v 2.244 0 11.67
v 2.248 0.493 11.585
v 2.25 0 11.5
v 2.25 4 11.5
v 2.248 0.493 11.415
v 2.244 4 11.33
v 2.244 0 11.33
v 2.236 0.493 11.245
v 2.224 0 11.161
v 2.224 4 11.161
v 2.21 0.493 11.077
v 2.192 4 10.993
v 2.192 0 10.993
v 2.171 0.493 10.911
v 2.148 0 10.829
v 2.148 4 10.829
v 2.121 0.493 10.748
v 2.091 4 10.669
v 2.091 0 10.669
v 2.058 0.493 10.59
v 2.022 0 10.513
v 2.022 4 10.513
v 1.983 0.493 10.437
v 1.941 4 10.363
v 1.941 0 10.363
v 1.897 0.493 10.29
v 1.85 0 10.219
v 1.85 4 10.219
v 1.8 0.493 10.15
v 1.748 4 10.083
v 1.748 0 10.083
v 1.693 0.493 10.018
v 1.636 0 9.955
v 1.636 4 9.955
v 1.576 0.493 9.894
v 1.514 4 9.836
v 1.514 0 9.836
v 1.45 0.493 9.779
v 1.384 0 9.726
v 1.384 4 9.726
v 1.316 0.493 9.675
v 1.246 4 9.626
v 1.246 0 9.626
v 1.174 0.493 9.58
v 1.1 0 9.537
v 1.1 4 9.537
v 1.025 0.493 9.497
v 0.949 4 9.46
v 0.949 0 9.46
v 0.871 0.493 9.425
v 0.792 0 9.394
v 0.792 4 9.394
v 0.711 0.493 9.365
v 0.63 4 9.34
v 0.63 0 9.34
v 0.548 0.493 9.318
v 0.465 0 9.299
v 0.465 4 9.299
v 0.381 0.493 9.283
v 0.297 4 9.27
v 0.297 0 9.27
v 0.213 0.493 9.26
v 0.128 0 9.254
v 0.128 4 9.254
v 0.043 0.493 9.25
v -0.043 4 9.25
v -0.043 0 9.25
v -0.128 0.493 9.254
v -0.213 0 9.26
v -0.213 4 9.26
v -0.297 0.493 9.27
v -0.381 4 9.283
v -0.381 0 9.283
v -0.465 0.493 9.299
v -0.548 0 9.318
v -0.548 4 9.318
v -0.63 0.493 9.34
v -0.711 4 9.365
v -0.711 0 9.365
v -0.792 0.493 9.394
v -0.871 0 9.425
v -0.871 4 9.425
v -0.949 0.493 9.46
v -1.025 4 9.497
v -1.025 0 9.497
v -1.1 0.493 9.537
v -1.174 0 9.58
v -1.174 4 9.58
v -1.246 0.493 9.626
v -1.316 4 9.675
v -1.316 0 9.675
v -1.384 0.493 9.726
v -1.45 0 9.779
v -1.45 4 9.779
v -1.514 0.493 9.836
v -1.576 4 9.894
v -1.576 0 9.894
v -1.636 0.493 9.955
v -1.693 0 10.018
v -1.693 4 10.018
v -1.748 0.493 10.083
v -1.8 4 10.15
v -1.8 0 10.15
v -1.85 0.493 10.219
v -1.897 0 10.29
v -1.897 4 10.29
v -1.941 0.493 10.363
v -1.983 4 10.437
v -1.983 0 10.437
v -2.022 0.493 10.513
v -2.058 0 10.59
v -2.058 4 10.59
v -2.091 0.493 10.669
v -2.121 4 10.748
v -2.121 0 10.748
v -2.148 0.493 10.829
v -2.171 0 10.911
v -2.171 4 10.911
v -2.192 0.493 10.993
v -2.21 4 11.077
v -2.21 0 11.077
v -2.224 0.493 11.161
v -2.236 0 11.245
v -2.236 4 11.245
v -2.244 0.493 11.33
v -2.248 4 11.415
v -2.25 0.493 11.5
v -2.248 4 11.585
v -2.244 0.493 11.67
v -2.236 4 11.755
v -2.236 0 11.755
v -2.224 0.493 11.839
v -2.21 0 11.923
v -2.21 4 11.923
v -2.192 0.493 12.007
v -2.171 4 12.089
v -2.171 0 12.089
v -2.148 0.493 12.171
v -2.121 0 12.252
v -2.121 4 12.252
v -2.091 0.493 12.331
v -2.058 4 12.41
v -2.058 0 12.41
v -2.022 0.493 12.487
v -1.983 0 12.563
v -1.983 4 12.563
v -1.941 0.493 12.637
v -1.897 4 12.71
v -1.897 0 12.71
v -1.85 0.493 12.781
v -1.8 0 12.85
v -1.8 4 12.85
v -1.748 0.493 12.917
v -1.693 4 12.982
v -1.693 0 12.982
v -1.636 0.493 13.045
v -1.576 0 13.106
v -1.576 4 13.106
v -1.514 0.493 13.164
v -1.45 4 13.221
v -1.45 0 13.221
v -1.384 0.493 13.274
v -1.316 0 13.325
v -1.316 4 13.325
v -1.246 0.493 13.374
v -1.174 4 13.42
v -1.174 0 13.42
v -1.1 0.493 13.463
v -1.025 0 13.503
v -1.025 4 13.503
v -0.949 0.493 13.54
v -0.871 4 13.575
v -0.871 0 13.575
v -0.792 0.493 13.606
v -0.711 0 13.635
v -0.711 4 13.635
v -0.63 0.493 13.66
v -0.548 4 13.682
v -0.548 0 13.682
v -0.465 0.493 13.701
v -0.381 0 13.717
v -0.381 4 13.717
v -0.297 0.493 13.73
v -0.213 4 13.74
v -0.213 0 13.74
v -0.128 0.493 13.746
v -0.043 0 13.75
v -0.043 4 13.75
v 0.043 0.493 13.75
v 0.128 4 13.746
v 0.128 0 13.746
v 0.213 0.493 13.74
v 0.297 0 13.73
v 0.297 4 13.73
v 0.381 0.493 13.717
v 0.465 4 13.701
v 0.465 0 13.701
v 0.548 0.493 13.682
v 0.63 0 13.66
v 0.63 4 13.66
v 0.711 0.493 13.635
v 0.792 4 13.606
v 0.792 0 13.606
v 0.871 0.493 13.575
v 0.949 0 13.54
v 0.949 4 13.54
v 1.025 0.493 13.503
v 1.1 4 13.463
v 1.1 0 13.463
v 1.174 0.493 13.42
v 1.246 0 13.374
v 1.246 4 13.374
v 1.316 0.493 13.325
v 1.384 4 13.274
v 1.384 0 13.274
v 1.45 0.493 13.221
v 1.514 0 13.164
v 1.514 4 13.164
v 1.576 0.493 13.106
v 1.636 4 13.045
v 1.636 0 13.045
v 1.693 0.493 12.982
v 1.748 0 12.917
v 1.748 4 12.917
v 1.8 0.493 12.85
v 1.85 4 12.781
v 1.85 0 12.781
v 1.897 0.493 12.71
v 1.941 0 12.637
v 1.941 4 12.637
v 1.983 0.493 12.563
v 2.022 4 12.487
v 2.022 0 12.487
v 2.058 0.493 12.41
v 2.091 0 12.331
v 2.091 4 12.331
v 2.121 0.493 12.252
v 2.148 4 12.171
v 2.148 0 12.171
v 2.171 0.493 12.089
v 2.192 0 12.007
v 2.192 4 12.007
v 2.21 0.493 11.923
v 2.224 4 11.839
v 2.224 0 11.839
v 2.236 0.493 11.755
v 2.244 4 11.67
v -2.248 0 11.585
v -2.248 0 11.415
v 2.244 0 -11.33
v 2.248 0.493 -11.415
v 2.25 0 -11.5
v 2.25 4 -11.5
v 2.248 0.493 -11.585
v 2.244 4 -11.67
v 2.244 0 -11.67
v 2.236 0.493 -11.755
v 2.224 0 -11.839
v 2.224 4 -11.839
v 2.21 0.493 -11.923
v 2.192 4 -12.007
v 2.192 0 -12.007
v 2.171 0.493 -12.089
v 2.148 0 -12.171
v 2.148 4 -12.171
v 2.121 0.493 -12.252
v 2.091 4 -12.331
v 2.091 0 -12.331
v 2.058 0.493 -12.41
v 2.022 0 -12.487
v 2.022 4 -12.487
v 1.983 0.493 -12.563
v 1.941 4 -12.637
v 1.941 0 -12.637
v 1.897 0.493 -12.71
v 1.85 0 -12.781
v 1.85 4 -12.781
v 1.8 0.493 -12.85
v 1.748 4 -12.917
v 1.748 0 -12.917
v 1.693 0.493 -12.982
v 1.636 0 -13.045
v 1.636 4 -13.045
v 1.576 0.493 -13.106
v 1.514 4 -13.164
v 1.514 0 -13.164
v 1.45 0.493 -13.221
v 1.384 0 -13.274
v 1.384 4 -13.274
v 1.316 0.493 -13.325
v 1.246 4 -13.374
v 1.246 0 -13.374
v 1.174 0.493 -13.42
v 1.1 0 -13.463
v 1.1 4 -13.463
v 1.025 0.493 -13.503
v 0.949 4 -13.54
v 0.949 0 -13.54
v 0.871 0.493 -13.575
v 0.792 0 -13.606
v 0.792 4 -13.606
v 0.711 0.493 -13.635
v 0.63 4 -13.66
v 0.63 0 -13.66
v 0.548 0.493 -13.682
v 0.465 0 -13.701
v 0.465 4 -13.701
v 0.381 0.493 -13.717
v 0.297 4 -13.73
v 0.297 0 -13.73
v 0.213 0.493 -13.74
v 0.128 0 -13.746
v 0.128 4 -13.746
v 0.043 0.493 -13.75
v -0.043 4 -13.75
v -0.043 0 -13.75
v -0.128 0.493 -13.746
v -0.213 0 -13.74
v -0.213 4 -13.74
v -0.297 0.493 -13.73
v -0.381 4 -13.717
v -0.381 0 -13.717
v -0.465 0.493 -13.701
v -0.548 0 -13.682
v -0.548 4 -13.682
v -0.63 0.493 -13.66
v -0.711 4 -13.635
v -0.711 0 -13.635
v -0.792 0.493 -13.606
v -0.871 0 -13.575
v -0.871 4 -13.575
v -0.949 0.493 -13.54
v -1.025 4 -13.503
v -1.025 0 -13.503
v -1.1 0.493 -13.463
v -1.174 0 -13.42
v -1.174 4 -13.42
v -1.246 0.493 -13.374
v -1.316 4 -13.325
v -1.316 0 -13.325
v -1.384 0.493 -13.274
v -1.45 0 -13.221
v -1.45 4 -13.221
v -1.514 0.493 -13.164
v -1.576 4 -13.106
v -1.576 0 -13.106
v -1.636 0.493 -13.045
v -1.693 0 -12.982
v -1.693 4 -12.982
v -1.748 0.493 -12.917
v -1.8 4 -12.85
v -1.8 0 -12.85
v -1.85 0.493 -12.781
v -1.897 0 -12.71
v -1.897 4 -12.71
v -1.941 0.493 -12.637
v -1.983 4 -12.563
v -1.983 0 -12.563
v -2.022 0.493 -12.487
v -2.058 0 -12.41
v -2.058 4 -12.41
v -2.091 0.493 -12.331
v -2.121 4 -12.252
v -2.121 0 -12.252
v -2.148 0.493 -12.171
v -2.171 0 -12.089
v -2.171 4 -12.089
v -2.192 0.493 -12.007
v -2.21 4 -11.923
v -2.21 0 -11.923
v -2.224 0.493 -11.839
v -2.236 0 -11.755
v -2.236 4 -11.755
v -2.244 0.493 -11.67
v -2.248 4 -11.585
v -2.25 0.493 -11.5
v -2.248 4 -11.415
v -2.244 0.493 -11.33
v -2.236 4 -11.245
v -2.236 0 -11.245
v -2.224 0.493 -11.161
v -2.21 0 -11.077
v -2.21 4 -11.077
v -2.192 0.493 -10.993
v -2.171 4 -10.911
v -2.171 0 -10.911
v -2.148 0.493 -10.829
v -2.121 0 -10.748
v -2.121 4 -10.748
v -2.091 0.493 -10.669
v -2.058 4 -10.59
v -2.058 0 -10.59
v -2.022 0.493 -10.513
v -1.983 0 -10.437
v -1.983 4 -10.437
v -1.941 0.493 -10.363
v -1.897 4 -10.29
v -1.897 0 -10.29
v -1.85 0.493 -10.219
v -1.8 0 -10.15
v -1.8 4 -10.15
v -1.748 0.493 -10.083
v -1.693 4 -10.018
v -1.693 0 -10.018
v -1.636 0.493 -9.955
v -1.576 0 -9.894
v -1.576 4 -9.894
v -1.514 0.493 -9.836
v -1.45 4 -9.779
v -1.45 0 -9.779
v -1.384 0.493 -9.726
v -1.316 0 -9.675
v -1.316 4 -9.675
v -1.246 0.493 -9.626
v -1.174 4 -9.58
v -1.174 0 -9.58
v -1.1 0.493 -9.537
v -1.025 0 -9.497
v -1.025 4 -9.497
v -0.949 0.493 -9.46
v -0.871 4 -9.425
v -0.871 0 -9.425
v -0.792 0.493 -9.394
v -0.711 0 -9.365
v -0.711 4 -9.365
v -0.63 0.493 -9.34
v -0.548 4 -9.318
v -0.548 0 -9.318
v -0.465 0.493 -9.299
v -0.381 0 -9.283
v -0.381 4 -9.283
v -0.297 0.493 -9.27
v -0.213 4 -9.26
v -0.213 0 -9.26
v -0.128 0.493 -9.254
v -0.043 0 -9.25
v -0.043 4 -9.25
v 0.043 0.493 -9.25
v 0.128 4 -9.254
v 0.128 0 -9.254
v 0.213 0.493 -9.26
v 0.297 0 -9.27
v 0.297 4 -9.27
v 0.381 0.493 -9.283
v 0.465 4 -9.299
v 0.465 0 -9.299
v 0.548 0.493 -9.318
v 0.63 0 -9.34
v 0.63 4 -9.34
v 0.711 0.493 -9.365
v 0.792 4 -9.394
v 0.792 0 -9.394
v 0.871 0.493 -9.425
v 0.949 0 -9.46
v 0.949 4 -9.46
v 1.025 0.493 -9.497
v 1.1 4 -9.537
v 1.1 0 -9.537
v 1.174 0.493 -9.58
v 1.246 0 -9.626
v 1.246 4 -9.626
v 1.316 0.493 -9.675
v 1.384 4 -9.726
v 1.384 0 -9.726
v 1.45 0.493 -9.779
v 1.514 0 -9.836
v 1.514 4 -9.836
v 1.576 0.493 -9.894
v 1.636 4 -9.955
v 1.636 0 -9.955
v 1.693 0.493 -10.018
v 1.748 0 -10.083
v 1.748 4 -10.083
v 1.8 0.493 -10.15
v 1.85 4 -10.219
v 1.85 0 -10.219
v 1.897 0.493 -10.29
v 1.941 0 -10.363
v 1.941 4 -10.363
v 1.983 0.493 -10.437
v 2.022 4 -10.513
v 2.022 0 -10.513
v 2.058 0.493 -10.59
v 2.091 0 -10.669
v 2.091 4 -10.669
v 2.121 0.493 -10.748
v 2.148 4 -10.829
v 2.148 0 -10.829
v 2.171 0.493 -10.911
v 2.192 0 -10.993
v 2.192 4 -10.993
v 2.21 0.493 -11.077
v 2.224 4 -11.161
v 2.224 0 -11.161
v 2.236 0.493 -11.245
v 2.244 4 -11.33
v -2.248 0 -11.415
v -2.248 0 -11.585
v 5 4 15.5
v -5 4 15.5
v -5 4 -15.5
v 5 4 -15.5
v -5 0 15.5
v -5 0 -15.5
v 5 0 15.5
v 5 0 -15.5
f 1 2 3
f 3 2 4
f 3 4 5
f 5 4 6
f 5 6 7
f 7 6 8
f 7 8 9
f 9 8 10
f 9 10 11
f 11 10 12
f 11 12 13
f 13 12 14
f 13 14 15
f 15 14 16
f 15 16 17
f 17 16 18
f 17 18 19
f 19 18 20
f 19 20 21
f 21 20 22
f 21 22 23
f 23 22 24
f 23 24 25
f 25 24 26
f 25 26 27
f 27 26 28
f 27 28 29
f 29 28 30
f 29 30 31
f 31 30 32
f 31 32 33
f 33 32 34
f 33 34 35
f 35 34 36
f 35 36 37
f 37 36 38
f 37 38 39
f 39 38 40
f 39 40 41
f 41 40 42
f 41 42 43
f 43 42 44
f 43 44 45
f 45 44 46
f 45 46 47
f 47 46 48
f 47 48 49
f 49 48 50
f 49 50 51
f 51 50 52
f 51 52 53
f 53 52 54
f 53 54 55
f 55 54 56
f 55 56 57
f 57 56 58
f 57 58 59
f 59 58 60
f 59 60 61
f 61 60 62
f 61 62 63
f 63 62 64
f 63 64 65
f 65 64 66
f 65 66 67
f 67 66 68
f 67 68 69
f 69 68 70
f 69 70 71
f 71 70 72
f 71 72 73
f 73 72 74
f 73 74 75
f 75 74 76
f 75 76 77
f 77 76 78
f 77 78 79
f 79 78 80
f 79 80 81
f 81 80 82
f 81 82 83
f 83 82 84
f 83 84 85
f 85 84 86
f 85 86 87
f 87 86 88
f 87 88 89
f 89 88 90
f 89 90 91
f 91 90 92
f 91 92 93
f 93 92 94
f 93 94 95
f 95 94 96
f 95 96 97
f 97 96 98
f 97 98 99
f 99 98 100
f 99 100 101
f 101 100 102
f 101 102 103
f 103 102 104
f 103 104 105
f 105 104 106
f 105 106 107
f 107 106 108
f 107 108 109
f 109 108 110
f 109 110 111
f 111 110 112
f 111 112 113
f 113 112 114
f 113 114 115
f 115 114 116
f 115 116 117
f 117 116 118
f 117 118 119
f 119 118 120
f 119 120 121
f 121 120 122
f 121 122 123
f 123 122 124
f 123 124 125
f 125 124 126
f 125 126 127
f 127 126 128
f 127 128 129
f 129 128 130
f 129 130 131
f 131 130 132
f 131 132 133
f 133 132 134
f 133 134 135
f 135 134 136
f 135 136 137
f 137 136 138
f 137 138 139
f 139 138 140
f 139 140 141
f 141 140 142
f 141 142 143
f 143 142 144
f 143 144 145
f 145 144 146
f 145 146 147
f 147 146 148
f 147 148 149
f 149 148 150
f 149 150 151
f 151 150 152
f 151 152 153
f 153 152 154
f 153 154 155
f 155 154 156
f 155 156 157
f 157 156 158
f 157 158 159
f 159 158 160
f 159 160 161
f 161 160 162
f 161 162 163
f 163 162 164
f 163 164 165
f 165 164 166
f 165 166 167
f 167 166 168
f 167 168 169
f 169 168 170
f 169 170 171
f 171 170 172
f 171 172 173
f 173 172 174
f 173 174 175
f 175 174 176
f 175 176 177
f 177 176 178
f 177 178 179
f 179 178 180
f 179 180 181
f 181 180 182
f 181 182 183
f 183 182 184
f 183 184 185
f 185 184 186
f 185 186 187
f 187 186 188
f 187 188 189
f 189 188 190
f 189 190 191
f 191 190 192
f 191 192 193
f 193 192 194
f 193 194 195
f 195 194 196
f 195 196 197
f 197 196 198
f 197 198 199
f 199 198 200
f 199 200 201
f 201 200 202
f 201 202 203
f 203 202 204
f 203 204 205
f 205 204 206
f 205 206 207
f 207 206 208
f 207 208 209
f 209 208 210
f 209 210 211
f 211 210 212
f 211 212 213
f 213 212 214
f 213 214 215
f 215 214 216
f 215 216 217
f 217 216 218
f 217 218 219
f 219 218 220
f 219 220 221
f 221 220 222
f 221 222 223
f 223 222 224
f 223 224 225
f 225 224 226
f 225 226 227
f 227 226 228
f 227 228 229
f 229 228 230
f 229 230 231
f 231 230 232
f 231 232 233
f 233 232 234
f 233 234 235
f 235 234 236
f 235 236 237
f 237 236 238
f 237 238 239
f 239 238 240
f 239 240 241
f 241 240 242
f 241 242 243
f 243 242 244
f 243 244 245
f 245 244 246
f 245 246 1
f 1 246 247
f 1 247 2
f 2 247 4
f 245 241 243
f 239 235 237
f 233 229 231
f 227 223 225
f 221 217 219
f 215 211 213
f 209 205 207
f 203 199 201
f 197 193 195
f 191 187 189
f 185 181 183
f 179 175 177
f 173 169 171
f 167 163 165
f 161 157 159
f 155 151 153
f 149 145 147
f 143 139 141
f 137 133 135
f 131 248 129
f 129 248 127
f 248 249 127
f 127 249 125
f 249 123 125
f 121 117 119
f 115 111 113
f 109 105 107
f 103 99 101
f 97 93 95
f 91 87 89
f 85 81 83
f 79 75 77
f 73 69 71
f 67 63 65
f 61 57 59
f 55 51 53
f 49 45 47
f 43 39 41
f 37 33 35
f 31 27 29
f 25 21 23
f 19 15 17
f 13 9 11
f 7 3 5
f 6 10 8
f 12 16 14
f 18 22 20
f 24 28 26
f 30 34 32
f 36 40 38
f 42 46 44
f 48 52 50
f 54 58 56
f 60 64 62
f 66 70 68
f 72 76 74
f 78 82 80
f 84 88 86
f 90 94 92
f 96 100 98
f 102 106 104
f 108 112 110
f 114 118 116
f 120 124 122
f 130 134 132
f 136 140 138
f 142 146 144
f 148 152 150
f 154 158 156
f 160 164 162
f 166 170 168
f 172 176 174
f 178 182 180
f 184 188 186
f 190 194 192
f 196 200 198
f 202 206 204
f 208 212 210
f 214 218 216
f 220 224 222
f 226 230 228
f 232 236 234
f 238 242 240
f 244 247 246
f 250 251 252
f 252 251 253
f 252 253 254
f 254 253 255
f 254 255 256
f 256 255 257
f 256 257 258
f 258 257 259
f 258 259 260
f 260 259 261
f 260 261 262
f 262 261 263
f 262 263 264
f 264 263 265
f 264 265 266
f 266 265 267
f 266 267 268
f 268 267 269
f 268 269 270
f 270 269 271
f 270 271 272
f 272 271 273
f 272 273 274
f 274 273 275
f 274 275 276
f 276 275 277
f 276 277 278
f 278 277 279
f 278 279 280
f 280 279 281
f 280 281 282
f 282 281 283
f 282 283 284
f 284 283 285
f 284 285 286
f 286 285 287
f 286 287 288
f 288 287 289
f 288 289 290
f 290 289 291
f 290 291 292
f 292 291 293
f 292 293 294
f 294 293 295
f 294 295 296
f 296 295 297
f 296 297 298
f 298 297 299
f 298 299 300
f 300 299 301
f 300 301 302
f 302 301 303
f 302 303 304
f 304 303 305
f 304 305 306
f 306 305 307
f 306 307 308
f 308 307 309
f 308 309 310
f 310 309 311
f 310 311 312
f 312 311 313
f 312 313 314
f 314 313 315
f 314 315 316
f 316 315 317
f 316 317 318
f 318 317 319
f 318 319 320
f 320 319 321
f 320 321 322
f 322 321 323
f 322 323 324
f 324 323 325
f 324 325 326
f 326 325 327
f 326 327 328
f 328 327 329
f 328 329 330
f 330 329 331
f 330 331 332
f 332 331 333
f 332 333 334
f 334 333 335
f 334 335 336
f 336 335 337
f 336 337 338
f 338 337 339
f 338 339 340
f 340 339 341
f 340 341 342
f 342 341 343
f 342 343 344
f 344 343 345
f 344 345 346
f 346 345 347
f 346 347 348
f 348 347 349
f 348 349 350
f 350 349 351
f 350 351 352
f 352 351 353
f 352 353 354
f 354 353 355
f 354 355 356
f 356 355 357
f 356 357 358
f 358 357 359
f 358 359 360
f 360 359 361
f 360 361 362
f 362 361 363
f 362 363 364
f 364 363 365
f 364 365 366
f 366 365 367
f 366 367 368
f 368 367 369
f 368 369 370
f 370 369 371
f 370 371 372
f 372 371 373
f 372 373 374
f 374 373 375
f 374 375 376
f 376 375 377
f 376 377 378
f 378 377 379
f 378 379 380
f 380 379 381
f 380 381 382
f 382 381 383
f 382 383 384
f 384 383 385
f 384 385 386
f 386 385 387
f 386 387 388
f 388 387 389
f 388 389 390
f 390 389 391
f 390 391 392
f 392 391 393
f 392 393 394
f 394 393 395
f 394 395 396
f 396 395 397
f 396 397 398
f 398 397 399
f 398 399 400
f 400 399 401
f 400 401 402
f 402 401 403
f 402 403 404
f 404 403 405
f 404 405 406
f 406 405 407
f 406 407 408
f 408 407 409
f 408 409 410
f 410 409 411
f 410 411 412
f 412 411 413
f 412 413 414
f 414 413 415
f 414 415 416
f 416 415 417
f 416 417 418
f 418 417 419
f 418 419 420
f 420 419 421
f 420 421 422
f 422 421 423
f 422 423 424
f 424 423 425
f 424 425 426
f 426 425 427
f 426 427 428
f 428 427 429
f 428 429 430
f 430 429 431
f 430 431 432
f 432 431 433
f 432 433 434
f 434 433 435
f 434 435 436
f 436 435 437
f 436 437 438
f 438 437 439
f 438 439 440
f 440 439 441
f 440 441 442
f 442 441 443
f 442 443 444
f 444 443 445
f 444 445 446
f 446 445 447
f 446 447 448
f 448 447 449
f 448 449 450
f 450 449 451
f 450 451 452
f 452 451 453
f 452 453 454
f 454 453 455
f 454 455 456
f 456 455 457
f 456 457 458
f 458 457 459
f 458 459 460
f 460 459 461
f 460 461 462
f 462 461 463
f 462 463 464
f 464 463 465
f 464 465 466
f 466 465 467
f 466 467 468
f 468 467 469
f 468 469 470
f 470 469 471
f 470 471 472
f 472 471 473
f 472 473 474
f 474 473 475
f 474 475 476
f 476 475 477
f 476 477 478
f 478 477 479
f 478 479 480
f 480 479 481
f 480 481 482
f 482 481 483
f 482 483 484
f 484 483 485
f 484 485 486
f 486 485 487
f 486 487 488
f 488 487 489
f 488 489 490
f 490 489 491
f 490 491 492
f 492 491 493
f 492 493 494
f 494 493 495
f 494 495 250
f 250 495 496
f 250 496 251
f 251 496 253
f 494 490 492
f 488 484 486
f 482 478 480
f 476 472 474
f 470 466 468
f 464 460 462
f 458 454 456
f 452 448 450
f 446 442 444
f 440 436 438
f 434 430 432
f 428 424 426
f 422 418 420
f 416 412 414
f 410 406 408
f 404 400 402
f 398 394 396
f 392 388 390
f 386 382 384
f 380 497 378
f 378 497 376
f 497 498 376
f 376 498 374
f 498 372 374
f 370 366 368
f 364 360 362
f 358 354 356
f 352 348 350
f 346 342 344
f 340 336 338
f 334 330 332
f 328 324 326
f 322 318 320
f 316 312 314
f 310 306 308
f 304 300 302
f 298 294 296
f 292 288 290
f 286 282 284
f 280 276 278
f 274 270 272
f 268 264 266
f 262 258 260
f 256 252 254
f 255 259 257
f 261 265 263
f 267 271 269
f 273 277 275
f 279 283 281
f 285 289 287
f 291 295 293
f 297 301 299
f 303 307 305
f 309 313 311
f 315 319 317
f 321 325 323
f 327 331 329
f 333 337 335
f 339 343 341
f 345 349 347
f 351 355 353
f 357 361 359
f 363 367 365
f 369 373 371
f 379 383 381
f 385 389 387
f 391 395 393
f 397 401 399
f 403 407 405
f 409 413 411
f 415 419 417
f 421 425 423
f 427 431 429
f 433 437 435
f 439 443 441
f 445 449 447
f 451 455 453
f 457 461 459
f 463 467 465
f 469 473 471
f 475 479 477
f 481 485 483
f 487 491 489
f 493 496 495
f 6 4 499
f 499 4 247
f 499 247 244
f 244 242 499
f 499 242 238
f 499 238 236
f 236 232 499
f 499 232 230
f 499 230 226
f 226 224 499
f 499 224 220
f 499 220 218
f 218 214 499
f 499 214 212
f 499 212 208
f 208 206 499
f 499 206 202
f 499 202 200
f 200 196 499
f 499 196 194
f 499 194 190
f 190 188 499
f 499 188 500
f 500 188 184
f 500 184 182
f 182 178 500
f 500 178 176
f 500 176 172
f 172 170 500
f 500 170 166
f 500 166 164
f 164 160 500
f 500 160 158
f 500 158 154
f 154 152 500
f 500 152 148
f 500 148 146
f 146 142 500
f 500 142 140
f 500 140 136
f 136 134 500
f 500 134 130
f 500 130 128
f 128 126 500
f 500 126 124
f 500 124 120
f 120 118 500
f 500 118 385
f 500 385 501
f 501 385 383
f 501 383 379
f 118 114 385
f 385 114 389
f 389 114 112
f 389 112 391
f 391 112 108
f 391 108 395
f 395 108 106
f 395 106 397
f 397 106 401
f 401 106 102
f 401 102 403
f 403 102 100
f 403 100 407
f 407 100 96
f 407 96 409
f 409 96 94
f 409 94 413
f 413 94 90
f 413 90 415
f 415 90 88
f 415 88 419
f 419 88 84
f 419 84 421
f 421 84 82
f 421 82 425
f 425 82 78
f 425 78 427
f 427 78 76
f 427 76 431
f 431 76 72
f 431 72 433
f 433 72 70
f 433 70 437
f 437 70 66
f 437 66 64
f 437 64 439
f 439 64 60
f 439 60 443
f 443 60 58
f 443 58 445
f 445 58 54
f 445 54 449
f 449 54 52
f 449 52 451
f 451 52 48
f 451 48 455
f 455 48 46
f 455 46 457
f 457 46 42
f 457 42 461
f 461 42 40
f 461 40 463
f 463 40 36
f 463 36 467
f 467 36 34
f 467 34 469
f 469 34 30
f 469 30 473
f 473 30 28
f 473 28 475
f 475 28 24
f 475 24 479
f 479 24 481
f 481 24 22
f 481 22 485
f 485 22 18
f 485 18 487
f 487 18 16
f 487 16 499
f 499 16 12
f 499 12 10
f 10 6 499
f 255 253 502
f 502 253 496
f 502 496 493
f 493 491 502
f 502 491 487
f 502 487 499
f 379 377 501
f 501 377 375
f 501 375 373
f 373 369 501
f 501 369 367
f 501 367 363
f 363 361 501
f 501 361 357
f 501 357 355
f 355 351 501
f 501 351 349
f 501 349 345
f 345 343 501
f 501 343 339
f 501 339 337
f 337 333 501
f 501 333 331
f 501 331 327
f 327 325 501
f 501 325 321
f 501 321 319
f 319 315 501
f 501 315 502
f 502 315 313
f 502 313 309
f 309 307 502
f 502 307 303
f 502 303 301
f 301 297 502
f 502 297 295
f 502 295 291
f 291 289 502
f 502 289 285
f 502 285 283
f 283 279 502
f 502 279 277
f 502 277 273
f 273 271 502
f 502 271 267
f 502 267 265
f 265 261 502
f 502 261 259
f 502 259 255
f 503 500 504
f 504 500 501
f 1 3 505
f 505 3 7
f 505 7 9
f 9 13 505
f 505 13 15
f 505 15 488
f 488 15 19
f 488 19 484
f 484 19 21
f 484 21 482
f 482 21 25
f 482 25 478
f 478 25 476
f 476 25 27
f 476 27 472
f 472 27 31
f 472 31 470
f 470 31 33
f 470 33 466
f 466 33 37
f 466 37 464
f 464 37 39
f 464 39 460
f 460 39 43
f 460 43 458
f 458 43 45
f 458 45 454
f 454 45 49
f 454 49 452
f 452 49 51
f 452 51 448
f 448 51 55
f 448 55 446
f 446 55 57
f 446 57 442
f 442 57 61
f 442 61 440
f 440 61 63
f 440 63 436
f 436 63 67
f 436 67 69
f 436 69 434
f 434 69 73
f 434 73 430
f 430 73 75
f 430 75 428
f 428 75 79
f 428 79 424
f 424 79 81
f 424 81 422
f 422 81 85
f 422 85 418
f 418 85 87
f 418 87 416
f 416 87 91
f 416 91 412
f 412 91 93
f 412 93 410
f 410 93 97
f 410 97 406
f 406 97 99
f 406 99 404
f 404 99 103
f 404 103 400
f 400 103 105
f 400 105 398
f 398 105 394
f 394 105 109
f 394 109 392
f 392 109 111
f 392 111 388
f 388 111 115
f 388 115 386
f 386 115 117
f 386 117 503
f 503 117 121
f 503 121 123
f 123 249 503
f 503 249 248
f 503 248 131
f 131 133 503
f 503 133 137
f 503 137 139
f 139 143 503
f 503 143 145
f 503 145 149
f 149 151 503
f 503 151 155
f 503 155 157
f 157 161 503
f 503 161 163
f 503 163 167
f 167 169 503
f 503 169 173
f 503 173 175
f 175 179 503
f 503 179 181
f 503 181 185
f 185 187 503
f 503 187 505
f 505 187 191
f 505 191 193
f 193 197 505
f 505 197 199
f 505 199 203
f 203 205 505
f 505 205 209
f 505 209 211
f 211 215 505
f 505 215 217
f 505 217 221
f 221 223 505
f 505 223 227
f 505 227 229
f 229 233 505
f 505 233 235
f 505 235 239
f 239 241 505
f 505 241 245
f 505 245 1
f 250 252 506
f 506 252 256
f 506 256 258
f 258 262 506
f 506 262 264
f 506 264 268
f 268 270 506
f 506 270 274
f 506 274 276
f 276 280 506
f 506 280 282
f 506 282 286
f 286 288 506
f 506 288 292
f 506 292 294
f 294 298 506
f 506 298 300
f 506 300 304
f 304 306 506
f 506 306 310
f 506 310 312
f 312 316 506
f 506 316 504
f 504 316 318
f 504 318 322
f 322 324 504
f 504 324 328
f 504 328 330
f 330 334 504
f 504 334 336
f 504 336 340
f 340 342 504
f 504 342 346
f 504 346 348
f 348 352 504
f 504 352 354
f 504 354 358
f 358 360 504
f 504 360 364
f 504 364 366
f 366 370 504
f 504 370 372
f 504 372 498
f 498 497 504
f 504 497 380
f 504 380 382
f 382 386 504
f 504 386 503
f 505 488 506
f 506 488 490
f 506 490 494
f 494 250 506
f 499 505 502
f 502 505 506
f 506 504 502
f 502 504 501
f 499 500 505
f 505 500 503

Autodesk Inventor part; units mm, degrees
ref_plane "YZ Plane" through (0, 0, 0) normal (1, 0, 0) x (0, 1, 0)
ref_plane "XZ Plane" through (0, 0, 0) normal (0, 1, 0) x (-1, 0, 0)
ref_plane "Work Plane1" through (0, 0, 15.5) normal (0, 0, 1) x (1, 0, 0)
sketch "Sketch1" plane through (0, 0, 15.5) normal (0, 0, 1) x (1, 0, 0)
  line L0 (5, 4) -> (5, 0)
  line L1 (-5, 4) -> (5, 4)
  line L2 (-5, 0) -> (5, 0)
  line L3 (-5, 4) -> (-5, 0)
extrude "Extrusion1" add sketch "Sketch1" against normal blind 31
hole "Hole2" at (0, 4, -11.5) direction (0, -1, 0) diameter 4.5 depth 4
sketch "Sketch2" plane through (-5, 4, 15.5) normal (0, 1, 0) x (1, 0, 0)
  point P0 (5, 27)
hole "Hole1" at (0, 4, 11.5) direction (0, -1, 0) diameter 4.5 depth 4
sketch "Sketch3" plane through (-5, 4, 15.5) normal (0, 1, 0) x (1, 0, 0)
  point P0 (5, 4)
properties part number "Spreader Belt clamp" material "ASA Plastic"
